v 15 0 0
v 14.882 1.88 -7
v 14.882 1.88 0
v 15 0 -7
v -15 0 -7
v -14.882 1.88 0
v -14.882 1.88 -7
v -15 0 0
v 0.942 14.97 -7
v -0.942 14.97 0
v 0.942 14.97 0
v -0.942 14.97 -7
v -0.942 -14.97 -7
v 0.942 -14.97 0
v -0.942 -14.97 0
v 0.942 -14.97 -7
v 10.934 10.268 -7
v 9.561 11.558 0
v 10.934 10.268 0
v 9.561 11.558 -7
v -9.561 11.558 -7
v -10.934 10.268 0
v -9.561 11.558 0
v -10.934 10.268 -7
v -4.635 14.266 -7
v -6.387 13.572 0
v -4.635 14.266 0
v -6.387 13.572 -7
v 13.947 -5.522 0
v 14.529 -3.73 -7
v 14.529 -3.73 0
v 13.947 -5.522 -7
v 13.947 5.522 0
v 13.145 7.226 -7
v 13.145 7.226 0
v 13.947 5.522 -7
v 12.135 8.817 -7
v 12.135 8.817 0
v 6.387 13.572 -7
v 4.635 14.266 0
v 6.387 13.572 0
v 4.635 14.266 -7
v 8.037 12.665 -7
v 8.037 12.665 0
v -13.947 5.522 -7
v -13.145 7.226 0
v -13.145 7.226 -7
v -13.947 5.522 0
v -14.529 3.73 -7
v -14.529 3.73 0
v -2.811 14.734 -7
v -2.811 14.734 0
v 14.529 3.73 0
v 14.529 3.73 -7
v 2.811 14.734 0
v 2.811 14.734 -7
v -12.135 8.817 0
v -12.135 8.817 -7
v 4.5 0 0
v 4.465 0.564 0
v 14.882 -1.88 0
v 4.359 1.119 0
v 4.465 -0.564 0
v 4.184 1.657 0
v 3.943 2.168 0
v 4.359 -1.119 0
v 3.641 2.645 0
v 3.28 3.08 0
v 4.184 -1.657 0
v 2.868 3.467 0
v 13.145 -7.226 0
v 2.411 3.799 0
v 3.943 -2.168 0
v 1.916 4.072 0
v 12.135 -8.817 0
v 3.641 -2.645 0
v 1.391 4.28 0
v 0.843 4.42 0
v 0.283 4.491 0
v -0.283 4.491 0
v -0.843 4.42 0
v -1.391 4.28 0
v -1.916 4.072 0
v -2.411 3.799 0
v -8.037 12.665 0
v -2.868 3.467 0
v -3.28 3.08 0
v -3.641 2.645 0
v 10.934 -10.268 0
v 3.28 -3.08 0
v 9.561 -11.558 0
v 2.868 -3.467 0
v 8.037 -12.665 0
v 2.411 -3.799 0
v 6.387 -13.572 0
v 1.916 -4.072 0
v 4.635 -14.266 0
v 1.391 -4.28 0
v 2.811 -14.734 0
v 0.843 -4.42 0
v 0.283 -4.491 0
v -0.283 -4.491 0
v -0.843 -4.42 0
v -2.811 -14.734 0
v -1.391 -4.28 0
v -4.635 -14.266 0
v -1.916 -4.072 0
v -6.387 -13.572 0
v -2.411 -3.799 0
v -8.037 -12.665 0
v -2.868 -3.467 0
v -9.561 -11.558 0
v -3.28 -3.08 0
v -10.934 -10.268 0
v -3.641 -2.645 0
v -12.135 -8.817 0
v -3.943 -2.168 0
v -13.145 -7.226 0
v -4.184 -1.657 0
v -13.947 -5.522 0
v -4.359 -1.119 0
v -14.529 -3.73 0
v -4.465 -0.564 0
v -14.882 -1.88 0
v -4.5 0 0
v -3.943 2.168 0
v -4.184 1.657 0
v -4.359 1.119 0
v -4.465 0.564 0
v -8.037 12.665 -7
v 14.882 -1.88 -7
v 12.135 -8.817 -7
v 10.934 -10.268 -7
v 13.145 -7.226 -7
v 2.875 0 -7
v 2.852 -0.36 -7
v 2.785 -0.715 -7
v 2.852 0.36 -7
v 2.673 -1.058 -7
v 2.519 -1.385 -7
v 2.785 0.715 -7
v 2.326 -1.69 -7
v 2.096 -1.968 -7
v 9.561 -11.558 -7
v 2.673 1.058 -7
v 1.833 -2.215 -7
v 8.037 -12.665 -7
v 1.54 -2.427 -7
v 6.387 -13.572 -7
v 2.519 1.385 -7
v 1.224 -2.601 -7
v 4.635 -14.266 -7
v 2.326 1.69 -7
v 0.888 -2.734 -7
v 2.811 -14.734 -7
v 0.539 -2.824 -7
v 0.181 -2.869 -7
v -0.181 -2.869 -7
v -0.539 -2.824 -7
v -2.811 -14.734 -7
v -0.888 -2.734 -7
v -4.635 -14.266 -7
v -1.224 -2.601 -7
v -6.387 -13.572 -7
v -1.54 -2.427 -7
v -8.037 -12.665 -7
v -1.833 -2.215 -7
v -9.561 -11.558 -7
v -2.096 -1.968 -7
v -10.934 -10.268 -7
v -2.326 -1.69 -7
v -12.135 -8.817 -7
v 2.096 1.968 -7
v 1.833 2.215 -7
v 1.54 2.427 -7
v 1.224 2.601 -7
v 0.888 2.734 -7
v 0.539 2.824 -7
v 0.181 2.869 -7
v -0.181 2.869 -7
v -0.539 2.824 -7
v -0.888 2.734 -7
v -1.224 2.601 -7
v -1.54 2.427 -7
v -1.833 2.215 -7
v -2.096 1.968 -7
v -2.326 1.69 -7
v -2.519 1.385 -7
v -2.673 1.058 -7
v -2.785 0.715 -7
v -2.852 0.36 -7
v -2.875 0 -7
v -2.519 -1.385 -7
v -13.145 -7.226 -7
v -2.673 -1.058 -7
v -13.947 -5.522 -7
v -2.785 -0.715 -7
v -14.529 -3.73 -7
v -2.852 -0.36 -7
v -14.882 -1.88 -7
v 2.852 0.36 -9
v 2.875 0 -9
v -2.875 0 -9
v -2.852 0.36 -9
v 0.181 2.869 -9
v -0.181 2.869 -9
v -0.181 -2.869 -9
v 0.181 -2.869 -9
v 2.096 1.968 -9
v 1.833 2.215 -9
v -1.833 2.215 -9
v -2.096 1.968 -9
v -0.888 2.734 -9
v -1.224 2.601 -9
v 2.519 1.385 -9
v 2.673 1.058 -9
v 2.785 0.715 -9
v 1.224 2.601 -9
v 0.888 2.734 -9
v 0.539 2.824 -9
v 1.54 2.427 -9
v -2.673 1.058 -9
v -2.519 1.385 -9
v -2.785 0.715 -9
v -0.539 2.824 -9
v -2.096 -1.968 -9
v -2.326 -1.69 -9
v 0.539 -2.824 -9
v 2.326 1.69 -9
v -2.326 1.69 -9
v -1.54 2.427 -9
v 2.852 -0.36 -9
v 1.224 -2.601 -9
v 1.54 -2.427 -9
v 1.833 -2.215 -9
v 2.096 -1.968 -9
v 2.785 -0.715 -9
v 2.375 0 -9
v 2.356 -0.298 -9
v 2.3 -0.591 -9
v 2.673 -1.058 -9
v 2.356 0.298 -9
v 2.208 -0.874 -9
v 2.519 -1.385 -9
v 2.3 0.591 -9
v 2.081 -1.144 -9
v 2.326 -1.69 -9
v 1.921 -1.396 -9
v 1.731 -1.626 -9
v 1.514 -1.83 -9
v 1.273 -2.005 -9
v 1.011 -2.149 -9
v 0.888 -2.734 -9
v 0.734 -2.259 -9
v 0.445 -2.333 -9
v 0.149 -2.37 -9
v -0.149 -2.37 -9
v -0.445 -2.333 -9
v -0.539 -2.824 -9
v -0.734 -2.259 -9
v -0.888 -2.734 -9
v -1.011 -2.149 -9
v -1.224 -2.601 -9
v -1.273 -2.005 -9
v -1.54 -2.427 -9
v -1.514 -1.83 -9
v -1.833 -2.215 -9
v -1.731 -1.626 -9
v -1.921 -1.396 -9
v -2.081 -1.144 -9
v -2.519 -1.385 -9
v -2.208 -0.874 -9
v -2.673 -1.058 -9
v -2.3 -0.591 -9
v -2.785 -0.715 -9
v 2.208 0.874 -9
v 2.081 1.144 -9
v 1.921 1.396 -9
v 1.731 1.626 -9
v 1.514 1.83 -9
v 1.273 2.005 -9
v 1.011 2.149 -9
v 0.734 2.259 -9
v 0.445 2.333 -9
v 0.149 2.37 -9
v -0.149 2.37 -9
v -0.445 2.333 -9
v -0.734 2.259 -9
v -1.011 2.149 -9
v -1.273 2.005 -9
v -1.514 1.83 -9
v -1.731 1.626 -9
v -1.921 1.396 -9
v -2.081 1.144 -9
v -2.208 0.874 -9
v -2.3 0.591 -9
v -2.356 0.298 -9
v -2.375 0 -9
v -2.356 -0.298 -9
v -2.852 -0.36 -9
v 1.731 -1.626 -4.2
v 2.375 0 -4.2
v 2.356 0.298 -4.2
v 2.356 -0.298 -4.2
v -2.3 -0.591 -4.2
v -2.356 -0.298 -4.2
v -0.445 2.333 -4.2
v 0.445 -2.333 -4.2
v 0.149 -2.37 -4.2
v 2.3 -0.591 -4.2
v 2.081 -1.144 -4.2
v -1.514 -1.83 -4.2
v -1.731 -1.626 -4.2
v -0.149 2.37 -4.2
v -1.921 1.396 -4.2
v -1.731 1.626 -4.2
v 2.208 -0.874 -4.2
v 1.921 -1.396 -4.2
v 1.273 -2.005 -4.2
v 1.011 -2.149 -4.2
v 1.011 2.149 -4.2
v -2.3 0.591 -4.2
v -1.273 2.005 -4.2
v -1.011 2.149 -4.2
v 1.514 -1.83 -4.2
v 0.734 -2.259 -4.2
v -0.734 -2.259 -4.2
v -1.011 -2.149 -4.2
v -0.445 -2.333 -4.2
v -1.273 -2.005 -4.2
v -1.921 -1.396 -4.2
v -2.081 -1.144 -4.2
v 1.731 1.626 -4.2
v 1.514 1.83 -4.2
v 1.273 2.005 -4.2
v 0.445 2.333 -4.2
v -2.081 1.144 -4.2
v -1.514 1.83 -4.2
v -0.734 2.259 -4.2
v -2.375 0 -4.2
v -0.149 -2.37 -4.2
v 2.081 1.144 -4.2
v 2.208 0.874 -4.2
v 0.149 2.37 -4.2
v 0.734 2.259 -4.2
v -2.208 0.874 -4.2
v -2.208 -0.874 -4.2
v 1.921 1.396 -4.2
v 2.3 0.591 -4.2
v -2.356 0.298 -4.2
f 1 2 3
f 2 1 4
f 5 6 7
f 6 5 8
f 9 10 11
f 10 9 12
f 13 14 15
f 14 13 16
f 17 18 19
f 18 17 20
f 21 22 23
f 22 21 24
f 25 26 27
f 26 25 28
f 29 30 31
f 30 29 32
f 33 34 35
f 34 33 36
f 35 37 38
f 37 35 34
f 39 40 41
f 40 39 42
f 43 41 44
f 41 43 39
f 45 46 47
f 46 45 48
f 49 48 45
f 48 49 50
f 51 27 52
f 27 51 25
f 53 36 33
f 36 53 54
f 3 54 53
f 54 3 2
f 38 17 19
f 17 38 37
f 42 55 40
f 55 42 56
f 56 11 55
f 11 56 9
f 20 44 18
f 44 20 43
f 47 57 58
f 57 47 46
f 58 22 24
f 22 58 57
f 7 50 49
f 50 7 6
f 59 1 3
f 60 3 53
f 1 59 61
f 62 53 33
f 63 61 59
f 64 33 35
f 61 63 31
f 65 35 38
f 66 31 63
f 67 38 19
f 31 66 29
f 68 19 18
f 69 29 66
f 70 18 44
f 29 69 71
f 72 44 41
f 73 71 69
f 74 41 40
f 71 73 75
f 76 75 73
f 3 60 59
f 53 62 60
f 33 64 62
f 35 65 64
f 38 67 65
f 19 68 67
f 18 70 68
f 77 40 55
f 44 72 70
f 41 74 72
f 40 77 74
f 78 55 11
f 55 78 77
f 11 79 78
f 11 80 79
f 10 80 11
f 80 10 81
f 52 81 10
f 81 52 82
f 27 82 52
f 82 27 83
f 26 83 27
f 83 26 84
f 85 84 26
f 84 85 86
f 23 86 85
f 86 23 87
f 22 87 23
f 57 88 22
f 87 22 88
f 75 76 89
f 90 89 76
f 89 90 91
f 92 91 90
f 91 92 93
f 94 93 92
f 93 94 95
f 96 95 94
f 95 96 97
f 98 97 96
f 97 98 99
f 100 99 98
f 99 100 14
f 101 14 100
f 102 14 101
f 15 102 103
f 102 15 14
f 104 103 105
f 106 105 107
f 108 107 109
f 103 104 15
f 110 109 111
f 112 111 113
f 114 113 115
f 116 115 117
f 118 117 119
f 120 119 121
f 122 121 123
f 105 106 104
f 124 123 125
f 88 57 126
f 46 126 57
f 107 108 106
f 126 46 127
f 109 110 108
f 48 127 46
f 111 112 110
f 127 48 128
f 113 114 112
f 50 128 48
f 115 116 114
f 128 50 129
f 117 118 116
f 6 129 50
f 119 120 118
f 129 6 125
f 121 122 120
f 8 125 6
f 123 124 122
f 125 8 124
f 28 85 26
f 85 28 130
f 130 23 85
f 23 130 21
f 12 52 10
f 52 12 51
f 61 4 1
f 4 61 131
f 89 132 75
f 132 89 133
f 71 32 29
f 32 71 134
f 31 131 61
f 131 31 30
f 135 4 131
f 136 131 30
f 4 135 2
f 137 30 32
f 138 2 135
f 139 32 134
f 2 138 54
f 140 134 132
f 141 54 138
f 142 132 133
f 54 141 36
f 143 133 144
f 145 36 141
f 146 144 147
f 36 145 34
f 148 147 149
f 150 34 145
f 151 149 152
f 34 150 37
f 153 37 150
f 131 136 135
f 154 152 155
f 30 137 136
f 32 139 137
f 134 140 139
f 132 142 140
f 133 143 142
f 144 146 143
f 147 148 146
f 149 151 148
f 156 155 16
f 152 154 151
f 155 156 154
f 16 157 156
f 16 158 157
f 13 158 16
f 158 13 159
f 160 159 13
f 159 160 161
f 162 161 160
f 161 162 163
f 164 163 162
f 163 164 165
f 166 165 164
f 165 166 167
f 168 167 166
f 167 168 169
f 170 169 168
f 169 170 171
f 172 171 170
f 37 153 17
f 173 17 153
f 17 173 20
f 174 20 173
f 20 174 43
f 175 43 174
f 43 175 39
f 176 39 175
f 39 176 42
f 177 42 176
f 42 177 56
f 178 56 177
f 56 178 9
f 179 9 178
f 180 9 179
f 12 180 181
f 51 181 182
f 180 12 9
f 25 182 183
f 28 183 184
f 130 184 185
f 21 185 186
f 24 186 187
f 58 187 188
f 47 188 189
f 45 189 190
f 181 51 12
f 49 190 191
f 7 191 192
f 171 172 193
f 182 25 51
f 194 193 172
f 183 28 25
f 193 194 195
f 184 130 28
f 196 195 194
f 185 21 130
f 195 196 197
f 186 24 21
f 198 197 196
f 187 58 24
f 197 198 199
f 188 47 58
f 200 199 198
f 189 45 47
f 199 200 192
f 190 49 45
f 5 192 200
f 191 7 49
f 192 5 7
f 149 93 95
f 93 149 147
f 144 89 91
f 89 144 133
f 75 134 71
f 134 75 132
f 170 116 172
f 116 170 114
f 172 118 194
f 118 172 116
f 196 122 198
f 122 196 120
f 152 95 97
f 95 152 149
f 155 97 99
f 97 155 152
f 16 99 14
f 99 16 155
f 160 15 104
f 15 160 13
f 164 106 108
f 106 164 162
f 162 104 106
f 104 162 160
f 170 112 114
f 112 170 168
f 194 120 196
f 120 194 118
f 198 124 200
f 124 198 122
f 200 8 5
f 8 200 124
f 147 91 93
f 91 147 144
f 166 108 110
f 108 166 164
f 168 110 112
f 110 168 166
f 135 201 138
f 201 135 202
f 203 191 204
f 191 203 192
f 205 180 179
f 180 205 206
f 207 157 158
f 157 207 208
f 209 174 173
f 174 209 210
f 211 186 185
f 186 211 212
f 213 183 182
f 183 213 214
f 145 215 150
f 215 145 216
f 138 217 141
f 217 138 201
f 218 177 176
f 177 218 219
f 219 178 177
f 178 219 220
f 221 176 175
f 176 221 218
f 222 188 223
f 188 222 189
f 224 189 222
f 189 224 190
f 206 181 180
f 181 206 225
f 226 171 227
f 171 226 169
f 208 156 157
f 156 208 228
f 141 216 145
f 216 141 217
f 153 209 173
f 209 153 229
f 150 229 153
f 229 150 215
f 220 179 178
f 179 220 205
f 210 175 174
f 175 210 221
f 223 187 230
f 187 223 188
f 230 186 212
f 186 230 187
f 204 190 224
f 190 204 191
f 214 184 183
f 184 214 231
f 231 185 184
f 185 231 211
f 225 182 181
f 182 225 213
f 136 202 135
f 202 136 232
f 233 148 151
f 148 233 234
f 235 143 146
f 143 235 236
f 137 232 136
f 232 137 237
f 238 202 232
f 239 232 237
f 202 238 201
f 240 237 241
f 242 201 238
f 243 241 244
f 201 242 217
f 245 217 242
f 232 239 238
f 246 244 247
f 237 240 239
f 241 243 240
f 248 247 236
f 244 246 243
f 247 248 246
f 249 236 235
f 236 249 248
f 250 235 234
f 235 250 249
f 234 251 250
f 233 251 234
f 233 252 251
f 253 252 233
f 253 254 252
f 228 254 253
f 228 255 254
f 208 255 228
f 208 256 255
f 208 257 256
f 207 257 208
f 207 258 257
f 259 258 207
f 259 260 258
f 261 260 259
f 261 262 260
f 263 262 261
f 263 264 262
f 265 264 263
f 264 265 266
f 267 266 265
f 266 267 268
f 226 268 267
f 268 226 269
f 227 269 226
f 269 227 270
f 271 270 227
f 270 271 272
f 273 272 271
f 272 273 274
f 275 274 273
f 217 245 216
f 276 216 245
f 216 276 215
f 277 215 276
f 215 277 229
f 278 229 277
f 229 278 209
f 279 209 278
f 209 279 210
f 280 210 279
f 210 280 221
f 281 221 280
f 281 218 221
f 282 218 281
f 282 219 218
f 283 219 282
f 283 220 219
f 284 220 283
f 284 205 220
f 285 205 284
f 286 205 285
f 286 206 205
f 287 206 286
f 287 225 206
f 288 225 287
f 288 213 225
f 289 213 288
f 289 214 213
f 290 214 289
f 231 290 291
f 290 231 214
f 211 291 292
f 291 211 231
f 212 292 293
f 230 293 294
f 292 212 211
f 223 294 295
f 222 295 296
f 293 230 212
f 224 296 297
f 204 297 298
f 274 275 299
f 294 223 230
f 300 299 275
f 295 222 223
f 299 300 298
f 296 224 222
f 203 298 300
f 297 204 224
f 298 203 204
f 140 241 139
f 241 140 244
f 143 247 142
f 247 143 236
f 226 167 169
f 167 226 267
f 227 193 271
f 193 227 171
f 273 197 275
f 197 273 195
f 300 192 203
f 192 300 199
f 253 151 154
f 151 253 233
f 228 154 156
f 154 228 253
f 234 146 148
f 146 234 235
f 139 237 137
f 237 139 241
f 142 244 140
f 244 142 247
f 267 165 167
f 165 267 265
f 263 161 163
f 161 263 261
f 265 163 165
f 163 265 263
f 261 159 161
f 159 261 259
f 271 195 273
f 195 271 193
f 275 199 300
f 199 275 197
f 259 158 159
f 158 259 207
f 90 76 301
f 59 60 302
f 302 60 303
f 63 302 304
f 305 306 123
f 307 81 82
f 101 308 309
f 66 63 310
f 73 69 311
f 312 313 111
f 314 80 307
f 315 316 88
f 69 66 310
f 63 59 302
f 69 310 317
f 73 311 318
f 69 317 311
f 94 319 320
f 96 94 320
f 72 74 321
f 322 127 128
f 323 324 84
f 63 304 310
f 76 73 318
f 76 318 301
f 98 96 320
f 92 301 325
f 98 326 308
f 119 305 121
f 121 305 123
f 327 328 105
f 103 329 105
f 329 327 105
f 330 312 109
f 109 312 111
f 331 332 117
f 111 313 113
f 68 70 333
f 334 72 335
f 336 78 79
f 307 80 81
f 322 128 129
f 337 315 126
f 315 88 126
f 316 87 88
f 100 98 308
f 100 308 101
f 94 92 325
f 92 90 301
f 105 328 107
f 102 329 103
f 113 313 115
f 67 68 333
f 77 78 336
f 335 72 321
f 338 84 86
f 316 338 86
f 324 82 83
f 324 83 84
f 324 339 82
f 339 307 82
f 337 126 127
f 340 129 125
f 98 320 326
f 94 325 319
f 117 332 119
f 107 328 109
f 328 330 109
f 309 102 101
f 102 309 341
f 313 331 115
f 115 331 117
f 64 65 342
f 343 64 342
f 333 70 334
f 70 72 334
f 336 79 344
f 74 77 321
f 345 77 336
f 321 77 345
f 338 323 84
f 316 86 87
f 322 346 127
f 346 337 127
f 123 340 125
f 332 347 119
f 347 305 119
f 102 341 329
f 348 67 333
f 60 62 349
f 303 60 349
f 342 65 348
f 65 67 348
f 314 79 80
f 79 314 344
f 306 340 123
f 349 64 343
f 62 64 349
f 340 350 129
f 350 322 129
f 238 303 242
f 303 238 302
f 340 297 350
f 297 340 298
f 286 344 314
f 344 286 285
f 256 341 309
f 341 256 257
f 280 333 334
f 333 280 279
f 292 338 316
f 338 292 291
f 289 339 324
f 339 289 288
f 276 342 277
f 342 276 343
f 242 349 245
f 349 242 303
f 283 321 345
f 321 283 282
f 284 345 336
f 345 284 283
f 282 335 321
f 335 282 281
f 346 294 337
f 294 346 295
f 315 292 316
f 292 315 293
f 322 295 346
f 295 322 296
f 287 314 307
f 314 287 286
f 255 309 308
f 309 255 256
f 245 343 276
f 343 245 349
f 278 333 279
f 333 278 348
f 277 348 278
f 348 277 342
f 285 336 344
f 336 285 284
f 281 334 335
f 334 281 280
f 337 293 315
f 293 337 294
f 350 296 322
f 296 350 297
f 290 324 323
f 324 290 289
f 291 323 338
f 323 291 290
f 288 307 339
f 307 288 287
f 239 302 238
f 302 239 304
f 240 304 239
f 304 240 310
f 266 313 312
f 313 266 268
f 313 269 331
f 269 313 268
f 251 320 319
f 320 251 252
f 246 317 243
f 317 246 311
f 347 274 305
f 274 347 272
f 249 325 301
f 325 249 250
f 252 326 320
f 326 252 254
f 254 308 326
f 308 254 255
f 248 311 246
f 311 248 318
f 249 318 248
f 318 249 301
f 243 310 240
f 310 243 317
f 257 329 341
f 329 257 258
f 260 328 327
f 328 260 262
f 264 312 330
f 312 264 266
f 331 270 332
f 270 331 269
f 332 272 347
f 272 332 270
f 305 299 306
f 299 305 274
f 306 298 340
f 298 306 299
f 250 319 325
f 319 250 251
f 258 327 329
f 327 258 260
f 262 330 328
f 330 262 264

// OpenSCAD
$fn = 50;


difference() {
	union() {
		translate(v = [0, 0, -7.0000000000]) {
			cylinder(h = 7, r = 15.0000000000);
		}
		translate(v = [0, 0, -9.0000000000]) {
			cylinder(h = 9, r = 2.8750000000);
		}
	}
	union() {
		translate(v = [0, 0, 0]) {
			rotate(a = [0, 0, 0]) {
				difference() {
					union() {
						#translate(v = [0, 0, -9.0000000000]) {
							cylinder(h = 9, r = 2.2500000000);
						}
						#translate(v = [0, 0, -4.2000000000]) {
							cylinder(h = 4.2000000000, r1 = 2.3750000000, r2 = 4.5000000000);
						}
						#translate(v = [0, 0, -9.0000000000]) {
							cylinder(h = 9, r = 2.3750000000);
						}
						#translate(v = [0, 0, -9.0000000000]) {
							cylinder(h = 9, r = 2.2500000000);
						}
					}
					union();
				}
			}
		}
	}
}
